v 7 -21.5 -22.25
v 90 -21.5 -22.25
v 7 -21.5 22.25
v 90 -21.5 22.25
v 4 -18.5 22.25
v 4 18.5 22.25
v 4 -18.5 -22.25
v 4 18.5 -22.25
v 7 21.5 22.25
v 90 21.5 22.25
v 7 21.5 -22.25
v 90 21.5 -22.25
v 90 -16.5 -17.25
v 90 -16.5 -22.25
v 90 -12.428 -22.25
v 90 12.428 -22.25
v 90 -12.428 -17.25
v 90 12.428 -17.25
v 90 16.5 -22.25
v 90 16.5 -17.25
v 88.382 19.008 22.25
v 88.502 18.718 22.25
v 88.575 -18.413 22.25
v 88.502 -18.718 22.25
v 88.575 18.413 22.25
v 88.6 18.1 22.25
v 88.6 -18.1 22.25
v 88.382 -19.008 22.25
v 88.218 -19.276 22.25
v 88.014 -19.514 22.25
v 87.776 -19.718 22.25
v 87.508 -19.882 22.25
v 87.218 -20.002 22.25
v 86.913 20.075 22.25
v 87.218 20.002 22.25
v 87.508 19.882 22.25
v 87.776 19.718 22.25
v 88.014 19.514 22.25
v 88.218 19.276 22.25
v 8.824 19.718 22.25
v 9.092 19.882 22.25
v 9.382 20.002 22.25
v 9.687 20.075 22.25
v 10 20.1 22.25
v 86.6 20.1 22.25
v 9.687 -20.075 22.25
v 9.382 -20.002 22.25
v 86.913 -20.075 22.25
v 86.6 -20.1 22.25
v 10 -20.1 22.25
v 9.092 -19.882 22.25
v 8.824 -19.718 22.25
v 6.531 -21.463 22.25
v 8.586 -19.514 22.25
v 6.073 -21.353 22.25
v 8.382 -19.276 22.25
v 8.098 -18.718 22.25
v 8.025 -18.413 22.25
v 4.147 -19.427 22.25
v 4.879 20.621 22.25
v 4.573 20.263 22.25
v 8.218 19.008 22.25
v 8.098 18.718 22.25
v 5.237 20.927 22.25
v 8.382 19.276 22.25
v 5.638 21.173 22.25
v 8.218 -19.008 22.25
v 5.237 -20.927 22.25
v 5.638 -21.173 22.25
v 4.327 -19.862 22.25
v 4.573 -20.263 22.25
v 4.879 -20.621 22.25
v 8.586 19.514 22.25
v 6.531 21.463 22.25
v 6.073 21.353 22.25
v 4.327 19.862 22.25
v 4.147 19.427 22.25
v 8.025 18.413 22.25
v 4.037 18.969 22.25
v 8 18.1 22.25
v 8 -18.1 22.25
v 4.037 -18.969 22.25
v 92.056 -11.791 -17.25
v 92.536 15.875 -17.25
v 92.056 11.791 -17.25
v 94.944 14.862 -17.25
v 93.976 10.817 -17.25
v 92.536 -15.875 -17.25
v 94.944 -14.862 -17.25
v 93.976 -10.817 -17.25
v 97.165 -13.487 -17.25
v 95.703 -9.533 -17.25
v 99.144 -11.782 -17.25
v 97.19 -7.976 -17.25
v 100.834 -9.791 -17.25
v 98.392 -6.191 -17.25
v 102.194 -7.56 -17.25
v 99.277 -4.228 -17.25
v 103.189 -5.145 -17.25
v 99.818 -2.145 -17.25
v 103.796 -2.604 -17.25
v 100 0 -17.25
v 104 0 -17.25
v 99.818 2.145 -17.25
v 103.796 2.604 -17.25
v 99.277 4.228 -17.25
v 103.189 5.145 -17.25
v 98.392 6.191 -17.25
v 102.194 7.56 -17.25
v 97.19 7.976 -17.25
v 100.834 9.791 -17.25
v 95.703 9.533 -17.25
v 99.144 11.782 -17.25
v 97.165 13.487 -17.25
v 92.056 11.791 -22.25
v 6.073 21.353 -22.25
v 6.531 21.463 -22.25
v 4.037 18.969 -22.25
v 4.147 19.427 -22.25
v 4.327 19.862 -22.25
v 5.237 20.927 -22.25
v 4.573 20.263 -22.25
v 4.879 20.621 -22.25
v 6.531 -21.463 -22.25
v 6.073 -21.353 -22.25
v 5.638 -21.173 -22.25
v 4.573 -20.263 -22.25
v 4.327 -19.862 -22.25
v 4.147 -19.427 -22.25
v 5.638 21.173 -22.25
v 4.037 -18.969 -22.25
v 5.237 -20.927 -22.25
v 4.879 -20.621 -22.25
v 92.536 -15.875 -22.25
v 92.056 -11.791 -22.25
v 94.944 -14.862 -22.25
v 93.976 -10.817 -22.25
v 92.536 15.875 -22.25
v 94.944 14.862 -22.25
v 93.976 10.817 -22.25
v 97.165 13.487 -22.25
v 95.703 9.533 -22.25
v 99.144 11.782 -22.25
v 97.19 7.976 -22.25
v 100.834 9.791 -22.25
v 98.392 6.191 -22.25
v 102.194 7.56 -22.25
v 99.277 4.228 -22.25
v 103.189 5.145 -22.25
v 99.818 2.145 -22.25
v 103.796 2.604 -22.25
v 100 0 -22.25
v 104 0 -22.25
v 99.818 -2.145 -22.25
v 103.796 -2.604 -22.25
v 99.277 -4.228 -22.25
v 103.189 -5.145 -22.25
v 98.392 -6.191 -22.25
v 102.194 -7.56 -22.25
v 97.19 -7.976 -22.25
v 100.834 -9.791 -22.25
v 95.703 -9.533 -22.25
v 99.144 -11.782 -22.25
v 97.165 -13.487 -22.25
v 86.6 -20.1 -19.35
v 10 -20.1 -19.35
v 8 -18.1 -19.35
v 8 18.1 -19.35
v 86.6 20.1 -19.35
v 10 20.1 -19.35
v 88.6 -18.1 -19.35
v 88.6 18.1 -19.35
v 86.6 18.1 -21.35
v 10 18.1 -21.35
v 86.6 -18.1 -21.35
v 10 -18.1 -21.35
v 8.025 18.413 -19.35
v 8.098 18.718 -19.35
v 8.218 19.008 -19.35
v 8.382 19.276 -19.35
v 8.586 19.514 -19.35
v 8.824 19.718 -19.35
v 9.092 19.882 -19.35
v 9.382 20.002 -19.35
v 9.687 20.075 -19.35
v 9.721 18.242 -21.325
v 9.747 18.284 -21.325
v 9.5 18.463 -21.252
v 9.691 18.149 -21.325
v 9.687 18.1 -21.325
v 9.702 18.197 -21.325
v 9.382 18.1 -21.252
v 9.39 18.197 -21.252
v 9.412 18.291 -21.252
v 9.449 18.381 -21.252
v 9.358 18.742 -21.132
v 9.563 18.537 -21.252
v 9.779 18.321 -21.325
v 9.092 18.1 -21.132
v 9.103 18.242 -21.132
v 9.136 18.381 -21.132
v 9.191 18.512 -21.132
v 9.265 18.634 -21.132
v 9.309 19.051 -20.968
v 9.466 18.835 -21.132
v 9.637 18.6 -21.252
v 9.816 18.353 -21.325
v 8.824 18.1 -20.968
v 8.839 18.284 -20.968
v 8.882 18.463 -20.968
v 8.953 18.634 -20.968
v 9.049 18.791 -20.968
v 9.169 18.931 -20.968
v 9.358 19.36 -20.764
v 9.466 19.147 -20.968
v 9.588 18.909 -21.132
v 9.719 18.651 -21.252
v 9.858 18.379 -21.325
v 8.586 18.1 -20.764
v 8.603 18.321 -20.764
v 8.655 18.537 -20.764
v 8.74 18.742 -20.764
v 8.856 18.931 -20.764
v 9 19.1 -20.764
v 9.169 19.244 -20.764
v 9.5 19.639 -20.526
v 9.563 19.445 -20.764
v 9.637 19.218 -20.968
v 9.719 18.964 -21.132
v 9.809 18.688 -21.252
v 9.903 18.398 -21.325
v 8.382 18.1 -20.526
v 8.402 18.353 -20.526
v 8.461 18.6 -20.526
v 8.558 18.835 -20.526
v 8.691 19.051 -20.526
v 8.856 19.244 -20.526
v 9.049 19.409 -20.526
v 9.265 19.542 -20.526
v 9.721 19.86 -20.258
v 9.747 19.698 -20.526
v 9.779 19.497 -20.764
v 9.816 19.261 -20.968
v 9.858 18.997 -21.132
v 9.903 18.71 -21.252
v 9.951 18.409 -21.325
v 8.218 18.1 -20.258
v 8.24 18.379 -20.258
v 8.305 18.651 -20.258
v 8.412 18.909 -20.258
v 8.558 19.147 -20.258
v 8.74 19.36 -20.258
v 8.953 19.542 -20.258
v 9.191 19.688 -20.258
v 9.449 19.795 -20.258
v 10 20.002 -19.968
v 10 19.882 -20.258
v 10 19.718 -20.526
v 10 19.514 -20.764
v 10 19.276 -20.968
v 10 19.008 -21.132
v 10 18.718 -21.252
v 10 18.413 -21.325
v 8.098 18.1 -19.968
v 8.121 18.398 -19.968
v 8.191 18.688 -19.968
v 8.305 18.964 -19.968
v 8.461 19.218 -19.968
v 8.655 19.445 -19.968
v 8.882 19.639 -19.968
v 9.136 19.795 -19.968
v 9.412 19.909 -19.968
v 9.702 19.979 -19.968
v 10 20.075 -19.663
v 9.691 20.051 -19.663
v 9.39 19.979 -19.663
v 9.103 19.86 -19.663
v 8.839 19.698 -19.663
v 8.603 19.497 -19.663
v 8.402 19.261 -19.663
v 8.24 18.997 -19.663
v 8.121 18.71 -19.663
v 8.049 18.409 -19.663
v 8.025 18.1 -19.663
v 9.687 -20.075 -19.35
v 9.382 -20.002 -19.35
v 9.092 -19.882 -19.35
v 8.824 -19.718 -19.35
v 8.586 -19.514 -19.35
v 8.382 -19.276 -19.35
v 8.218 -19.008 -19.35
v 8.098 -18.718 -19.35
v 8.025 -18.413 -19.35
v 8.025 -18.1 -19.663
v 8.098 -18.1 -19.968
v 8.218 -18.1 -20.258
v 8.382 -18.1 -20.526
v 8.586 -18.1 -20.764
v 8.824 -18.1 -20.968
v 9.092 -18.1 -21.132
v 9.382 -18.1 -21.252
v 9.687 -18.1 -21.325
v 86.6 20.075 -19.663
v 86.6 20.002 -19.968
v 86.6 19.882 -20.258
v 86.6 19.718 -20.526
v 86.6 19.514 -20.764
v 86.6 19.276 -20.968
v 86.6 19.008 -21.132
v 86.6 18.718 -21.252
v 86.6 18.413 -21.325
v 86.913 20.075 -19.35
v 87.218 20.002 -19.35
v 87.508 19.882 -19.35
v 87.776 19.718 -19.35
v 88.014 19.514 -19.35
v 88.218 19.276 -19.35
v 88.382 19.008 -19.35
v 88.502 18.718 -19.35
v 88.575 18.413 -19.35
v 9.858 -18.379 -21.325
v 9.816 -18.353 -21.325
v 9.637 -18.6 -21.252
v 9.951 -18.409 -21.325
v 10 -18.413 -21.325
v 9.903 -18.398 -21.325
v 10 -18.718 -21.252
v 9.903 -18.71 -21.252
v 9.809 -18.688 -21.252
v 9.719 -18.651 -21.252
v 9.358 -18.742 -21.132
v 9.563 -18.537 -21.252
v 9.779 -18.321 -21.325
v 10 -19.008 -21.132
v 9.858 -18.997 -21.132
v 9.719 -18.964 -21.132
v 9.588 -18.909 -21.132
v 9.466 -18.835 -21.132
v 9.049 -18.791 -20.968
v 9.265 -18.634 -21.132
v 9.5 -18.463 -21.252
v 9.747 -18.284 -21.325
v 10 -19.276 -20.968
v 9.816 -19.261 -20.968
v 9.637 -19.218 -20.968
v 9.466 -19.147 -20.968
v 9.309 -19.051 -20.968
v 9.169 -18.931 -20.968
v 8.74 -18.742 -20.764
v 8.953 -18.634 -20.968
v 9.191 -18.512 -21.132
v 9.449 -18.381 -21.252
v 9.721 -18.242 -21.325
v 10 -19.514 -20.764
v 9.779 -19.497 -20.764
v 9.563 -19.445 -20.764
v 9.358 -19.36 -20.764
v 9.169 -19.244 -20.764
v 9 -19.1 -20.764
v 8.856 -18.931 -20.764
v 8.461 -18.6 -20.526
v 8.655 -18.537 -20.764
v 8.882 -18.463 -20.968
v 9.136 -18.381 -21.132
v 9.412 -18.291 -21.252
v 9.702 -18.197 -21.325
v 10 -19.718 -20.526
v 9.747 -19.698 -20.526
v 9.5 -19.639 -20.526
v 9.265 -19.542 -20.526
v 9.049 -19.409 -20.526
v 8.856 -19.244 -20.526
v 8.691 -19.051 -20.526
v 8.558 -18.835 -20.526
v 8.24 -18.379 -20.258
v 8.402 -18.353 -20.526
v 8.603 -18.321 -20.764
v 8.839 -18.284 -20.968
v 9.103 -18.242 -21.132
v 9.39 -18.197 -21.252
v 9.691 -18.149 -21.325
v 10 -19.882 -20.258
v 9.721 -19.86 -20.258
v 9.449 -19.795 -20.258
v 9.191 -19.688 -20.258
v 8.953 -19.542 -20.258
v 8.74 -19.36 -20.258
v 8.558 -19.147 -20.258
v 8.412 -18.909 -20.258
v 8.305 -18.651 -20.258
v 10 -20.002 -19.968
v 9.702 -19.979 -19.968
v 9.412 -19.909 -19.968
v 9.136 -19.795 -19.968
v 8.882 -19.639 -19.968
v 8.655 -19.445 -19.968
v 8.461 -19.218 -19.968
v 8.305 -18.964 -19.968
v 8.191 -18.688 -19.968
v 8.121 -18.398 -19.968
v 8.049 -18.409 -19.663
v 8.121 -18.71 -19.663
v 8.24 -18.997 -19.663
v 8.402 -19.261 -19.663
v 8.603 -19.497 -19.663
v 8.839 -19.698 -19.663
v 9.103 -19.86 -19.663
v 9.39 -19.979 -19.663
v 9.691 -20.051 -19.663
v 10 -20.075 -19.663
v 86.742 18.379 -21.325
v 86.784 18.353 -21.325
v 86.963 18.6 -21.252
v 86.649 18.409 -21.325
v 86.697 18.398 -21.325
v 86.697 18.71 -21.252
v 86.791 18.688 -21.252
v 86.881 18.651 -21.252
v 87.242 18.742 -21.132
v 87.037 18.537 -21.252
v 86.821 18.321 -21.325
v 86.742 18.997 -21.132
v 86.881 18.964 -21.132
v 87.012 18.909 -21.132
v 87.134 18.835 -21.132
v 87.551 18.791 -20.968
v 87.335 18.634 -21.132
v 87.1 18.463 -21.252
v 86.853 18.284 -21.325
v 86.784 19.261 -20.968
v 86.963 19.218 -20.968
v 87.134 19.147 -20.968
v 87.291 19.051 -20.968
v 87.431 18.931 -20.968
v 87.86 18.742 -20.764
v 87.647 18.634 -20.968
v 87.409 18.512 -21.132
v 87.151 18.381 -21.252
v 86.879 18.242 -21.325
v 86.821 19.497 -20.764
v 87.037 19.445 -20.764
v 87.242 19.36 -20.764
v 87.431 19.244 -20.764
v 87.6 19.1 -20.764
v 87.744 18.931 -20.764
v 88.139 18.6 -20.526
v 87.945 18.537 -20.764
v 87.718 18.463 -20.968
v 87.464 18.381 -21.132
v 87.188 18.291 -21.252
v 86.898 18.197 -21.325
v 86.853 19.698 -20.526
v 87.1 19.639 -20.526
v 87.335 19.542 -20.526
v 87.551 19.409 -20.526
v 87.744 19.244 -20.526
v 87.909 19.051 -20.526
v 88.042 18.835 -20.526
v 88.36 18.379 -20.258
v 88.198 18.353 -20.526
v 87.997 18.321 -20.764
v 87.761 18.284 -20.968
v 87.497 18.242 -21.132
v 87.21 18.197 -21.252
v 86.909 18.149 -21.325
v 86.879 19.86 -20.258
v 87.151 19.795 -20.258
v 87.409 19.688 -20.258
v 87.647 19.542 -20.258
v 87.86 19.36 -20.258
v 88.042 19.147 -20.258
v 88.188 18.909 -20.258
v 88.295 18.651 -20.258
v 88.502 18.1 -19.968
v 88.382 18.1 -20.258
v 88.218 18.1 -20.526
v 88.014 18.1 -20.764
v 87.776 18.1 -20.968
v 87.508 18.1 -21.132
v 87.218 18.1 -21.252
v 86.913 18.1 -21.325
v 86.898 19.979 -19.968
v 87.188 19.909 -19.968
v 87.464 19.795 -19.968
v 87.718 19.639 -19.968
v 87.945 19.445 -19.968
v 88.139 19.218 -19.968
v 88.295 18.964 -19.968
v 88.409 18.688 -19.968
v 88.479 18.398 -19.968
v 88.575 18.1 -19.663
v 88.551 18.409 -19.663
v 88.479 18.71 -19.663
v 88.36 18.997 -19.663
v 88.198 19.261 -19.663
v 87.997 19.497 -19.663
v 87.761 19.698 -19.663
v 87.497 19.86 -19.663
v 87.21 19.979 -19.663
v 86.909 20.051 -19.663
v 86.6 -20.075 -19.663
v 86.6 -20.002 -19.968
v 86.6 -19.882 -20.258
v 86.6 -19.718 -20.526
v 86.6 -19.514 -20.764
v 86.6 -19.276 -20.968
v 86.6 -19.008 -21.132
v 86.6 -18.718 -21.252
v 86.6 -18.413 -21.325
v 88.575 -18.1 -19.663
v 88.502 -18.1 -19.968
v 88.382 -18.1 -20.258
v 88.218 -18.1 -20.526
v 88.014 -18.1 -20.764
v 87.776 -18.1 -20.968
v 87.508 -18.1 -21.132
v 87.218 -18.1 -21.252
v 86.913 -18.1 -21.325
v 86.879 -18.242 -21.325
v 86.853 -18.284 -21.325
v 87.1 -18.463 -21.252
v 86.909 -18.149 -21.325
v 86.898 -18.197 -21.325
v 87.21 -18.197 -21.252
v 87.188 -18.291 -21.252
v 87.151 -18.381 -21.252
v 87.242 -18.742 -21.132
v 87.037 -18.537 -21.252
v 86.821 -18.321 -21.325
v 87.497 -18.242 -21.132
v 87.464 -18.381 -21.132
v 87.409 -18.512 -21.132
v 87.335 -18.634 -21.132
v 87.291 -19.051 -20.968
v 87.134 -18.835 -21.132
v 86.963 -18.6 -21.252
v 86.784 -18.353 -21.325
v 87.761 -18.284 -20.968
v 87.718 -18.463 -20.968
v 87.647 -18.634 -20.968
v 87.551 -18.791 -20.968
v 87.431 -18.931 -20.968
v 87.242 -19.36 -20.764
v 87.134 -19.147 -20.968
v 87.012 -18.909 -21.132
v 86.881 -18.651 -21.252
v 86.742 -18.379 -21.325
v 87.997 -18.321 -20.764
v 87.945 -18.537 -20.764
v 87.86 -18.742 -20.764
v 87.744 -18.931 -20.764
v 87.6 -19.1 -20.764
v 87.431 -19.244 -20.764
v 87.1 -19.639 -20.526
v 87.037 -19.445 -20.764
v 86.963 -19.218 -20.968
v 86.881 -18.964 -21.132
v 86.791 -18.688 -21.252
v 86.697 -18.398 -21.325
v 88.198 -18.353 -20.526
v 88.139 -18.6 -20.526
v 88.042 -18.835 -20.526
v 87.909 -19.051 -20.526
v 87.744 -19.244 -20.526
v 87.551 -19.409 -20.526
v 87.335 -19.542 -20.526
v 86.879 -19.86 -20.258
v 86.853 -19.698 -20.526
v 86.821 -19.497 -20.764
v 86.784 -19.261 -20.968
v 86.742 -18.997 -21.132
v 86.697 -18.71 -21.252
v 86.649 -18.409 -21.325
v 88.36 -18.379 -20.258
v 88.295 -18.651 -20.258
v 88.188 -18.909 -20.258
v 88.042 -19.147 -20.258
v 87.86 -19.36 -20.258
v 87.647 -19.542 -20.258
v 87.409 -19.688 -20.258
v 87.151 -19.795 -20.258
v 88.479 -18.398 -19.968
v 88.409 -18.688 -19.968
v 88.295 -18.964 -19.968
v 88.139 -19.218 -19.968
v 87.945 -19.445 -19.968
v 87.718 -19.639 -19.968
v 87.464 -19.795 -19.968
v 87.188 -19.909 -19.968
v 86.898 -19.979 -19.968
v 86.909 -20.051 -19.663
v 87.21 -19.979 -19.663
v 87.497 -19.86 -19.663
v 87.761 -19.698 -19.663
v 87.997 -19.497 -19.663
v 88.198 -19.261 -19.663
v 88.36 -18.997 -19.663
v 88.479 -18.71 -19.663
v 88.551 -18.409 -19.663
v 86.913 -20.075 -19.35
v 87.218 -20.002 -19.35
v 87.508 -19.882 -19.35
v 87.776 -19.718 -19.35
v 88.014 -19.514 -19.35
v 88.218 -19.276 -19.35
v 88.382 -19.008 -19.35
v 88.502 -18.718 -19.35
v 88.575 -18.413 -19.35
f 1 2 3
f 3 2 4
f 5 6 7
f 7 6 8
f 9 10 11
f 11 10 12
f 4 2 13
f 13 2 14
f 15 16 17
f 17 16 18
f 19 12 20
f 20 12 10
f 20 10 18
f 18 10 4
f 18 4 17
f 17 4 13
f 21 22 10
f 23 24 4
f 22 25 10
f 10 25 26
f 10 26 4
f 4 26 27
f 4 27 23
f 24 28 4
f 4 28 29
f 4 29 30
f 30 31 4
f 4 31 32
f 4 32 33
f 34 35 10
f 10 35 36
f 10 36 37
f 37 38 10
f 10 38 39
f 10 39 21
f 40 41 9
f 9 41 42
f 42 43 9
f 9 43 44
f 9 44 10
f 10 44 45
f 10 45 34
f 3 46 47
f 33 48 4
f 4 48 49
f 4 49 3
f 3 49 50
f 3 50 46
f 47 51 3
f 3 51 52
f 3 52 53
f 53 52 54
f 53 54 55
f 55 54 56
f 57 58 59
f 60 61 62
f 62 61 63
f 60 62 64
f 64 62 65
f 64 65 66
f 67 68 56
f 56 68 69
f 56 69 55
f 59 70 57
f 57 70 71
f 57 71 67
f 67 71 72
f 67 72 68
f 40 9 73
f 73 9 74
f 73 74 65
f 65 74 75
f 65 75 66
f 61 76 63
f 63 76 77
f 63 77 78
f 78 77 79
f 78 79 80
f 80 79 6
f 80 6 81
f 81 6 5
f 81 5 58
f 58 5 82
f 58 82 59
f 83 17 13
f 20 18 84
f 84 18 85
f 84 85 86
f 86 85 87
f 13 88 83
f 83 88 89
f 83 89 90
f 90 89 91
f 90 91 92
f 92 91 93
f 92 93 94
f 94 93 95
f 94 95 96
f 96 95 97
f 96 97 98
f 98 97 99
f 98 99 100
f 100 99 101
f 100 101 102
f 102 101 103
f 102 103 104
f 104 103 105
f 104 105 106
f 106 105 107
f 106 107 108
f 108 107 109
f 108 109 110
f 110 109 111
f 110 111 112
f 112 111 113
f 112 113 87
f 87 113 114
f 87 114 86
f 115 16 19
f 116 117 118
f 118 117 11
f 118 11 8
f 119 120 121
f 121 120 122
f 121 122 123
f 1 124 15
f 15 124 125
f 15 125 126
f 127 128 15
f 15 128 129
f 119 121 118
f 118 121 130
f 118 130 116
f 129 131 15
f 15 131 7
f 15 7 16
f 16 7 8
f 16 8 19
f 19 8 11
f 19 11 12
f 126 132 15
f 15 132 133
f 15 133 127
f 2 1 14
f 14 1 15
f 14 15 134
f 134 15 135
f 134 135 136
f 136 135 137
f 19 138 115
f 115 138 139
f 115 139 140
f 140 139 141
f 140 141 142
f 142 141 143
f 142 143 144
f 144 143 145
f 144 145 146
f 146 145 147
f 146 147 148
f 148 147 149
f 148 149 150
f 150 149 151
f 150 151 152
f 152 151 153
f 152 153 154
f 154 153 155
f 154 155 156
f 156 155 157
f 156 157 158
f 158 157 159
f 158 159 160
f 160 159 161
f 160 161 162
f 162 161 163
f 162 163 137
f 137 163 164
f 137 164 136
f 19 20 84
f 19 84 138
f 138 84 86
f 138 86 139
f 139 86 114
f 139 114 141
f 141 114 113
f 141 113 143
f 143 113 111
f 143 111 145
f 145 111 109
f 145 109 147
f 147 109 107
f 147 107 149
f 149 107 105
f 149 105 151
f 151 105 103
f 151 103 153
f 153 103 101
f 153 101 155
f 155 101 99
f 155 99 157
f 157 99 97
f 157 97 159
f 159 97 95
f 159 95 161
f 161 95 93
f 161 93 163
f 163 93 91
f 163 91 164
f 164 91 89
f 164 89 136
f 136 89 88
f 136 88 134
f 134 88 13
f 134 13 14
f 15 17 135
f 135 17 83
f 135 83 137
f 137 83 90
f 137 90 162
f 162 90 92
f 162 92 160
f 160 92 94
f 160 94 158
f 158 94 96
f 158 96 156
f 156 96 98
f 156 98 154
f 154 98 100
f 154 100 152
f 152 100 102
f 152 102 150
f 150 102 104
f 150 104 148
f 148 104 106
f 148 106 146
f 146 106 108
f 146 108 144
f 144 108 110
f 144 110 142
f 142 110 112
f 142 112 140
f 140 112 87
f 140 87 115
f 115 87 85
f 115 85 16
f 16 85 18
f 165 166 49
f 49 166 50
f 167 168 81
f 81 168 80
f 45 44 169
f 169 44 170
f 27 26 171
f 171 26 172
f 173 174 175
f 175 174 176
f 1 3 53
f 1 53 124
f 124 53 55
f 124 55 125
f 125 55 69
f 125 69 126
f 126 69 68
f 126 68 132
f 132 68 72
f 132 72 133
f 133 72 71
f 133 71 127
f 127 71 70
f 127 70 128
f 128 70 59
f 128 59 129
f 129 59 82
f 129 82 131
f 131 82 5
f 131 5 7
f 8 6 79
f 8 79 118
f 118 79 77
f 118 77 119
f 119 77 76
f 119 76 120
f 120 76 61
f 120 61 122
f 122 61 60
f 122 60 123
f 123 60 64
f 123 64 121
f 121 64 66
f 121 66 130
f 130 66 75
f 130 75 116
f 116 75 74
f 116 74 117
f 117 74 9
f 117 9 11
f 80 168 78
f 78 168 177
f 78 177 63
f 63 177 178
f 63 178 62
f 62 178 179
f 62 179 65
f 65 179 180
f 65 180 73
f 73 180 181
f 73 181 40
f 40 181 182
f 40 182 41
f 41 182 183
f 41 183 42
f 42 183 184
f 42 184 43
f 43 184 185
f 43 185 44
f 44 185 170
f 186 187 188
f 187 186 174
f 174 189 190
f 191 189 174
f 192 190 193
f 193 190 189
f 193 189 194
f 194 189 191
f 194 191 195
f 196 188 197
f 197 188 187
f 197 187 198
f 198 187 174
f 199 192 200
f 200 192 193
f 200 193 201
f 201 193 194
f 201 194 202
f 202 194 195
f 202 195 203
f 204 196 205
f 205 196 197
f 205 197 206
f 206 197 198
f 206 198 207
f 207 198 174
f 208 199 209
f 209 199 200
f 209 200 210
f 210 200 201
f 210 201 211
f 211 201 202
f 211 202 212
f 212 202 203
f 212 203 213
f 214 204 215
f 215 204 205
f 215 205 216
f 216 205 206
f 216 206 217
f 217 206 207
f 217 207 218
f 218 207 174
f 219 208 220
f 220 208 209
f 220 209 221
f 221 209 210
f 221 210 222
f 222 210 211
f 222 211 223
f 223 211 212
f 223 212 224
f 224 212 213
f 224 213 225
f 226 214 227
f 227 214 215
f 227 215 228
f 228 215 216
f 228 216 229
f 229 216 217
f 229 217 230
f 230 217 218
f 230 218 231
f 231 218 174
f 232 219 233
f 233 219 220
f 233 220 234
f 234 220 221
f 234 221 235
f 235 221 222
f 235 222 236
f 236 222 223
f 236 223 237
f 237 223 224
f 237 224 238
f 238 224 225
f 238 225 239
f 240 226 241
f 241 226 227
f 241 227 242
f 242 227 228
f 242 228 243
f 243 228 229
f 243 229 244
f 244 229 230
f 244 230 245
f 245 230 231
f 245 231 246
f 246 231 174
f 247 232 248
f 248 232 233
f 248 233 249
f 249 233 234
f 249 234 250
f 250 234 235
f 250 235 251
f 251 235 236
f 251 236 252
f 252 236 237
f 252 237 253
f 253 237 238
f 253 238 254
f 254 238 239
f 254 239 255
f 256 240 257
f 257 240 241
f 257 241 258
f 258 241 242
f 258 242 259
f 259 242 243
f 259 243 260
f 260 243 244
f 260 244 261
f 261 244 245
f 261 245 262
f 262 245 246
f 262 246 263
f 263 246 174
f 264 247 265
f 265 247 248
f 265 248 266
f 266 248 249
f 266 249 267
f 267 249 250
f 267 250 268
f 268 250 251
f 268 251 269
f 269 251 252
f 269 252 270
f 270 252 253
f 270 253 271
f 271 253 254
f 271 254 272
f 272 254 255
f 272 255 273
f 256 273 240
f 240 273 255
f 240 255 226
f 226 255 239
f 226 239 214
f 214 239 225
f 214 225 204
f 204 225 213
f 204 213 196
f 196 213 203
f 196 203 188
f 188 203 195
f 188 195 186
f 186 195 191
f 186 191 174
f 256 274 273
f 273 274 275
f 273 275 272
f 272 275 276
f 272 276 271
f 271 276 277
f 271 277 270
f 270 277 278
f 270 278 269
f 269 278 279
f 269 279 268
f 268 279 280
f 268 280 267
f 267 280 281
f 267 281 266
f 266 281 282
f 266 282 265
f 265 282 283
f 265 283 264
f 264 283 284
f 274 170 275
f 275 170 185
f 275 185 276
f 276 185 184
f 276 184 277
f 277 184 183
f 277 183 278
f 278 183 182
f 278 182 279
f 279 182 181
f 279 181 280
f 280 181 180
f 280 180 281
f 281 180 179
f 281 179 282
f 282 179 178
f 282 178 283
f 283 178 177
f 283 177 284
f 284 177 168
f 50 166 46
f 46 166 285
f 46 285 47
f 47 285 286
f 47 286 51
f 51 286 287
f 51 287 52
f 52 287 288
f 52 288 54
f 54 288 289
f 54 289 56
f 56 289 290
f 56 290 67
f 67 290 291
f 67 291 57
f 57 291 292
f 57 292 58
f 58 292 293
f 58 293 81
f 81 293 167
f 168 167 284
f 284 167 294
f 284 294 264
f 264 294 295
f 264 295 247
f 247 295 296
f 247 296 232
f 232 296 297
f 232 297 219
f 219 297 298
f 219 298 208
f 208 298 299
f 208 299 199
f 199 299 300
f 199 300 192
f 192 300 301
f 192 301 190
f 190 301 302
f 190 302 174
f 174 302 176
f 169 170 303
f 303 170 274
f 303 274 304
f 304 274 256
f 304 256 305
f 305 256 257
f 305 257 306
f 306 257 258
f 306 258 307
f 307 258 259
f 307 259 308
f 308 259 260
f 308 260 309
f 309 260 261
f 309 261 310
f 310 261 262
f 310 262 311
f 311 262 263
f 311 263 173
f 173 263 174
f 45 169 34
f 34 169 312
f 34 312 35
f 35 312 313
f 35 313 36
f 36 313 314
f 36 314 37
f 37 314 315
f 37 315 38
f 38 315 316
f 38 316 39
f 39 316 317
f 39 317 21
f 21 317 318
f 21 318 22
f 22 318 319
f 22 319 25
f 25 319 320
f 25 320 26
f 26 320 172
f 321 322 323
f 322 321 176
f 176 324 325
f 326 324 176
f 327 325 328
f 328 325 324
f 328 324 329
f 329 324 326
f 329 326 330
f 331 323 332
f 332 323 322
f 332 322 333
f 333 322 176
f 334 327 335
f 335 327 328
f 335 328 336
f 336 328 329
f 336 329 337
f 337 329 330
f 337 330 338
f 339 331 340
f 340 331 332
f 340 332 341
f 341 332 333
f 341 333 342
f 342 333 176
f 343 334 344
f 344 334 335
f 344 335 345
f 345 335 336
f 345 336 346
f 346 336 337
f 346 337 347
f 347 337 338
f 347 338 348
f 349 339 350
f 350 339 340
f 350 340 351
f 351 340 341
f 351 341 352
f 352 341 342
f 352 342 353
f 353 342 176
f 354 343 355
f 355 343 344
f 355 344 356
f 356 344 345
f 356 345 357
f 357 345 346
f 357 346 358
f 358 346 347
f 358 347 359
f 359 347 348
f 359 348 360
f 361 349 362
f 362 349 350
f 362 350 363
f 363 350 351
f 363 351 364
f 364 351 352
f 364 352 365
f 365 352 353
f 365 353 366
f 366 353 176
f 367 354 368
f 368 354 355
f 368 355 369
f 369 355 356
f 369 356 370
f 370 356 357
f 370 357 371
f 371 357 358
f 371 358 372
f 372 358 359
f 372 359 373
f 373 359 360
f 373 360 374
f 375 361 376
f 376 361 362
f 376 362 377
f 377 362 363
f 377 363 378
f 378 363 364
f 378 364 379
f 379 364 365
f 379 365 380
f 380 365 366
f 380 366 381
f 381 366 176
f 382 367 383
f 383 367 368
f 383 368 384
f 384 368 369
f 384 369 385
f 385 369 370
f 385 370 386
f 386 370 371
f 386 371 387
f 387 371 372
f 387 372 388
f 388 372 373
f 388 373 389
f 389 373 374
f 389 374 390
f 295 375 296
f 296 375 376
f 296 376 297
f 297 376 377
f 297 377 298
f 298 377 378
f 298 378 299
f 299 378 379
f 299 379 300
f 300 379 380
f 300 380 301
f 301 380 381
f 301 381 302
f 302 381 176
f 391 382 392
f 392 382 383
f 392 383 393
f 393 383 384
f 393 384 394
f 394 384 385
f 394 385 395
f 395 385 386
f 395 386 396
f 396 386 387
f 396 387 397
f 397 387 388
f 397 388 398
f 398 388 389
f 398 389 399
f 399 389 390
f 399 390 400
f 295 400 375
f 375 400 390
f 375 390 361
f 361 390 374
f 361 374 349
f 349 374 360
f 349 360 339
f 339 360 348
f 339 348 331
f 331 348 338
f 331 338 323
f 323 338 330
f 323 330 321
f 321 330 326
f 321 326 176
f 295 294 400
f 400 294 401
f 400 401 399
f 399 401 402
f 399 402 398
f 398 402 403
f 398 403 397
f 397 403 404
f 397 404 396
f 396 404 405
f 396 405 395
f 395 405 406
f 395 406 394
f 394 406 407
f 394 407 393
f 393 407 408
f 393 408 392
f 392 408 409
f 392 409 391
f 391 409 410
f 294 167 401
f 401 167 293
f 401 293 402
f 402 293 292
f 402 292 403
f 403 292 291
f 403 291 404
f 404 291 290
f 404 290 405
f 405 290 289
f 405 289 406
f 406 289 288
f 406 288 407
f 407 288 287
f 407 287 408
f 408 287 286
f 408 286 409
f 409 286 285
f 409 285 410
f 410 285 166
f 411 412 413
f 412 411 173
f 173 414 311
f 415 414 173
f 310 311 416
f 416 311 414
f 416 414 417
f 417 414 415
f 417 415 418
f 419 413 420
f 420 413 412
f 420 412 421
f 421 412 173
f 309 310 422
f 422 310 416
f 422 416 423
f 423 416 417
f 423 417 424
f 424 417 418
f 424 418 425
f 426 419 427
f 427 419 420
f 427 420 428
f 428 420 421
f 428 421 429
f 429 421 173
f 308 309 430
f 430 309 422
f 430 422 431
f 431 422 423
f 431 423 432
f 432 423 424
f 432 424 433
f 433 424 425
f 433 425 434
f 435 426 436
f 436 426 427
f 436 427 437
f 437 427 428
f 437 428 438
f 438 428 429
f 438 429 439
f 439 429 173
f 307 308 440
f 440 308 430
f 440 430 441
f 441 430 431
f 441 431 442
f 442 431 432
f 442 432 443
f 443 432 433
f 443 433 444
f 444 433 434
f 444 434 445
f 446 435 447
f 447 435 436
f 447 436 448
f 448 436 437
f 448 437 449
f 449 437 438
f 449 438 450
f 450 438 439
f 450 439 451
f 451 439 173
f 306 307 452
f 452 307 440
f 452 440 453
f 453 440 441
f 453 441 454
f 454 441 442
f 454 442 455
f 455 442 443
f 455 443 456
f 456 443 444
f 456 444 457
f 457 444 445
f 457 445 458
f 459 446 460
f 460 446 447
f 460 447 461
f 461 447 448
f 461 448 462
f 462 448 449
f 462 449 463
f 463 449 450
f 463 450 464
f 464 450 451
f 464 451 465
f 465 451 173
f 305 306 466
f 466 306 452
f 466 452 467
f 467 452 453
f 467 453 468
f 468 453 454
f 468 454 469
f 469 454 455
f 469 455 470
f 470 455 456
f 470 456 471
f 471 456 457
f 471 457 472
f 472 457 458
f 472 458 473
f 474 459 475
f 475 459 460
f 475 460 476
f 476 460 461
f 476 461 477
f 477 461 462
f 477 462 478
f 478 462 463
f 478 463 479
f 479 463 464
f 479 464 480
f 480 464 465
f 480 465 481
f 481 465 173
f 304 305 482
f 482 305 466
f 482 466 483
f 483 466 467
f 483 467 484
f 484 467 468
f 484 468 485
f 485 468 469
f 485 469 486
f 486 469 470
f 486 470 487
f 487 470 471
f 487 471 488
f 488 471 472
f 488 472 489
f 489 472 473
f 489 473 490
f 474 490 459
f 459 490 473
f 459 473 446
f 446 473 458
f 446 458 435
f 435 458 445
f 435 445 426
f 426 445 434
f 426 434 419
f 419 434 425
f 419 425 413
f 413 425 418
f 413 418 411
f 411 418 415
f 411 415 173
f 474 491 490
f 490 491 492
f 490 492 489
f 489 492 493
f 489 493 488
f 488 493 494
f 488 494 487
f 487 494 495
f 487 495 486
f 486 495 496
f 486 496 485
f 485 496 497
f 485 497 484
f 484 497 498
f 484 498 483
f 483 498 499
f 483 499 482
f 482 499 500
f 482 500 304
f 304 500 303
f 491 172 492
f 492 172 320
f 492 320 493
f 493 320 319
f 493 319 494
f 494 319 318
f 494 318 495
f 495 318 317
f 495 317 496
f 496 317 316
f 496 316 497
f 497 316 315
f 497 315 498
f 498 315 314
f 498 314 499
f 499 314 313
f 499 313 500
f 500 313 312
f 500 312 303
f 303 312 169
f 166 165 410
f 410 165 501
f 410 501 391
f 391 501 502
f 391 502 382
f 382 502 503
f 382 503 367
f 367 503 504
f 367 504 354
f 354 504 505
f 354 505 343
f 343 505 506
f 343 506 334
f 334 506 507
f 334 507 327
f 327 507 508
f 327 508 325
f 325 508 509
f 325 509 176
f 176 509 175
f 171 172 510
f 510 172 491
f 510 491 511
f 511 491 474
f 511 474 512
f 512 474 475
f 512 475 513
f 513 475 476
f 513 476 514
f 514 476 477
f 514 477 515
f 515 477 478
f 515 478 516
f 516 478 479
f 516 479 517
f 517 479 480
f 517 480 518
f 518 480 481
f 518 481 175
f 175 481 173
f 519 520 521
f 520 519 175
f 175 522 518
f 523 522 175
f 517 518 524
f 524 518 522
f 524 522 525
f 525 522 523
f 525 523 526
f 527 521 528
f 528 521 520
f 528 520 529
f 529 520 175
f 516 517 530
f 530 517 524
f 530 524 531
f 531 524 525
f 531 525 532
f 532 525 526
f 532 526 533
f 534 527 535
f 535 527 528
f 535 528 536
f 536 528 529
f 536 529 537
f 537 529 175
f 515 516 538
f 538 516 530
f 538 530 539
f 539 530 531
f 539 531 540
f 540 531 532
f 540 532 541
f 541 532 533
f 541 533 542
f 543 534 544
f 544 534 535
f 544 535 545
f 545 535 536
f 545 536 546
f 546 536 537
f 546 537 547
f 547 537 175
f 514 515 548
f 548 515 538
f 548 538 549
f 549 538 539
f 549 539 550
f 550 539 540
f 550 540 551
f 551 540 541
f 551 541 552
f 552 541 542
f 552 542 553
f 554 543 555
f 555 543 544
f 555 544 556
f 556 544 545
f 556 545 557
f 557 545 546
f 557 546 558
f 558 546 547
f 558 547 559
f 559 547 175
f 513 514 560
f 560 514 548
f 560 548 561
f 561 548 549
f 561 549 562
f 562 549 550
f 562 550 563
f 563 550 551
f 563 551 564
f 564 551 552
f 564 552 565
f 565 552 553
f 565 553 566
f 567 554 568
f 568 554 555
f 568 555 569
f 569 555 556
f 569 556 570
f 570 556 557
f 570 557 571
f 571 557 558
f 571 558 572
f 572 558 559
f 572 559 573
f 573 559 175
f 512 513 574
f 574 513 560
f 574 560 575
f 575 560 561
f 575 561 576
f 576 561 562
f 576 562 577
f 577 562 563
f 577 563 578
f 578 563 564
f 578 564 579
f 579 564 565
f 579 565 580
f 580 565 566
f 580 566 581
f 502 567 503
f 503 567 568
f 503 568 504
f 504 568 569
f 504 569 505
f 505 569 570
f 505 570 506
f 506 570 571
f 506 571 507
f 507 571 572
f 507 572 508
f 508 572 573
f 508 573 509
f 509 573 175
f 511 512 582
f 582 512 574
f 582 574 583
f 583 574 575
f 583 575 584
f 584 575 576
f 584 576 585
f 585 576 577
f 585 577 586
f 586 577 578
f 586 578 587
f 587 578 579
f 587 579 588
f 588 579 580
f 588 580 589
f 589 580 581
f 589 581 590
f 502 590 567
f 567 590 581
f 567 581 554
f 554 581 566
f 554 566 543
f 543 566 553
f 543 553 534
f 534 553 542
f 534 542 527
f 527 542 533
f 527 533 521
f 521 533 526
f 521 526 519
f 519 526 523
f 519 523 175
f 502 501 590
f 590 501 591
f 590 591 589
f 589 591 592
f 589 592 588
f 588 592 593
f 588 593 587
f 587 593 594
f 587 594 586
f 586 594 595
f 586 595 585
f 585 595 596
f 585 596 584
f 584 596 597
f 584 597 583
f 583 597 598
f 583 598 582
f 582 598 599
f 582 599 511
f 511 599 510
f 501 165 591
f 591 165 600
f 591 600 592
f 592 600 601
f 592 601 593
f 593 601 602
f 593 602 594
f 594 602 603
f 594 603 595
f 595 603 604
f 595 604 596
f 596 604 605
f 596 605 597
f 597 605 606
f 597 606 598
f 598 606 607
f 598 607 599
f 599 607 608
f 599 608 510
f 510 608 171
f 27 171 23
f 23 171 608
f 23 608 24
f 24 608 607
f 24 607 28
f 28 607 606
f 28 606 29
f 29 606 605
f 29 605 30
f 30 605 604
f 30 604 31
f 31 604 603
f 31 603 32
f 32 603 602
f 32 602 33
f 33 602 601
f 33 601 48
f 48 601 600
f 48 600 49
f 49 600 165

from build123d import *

# Parameters (mm, degrees)
SKETCH_1_W                  = 86
SKETCH_1_H                  = 43
EXTRUDE_1_DEPTH             = 39.5
EXTRUDE_2_DEPTH             = 5
SKETCH_3_W                  = 80.6
SKETCH_3_H                  = 40.2
CUT_EXTRUDE_1_DEPTH         = 43.6
HOLE_WIZARD_8_3_8_3_1_D     = 8.3
HOLE_WIZARD_8_3_8_3_1_DEPTH = 3.2
FILLET_1_R                  = 3
EXTRUDE_START               = -4
SKETCH_6_R                  = 4.15
EXTRUDE_3_DEPTH             = 4
FILLET_2_R                  = 2


with BuildPart() as part:
    # Эскиз1 → Бобышка-Вытянуть1 (new body)
    with BuildSketch(Plane.XY.offset(22.25)):
        with Locations((47, 0)):
            Rectangle(SKETCH_1_W, SKETCH_1_H)
    extrude(amount=-EXTRUDE_1_DEPTH)

    # Эскиз2 → Бобышка-Вытянуть2 (add)
    with BuildSketch(Plane(origin=(0, 0, -17.25), x_dir=(-1, 0, 0), z_dir=(0, 0, -1))):
        with BuildLine():
            Line((-90, -21.5), (-90, -16.5))
            ThreePointArc((-90, -16.5), (-104, 0), (-90, 16.5))
            Line((-90, 16.5), (-90, 21.5))
            Line((-90, 21.5), (-4, 21.5))
            Line((-4, 21.5), (-4, -21.5))
            Line((-4, -21.5), (-90, -21.5))
        make_face()
        with BuildLine():
            Line((-90, -12.428366172), (-90, 12.428366172))
            ThreePointArc((-90, 12.428366172), (-100, 0), (-90, -12.428366172))
        make_face(mode=Mode.SUBTRACT)
    extrude(amount=EXTRUDE_2_DEPTH)

    # Эскиз3 → Вырез-Вытянуть1 (cut)
    with BuildSketch(Plane.XY.offset(22.25)):
        with Locations((48.3, 0)):
            Rectangle(SKETCH_3_W, SKETCH_3_H)
    extrude(amount=-CUT_EXTRUDE_1_DEPTH, mode=Mode.SUBTRACT)

    # Диаметр отверстия Ø8.3 (8.3)1
    with Locations(Plane.ZY.offset(-4)):
        with Locations((0, 0)):
            Hole(HOLE_WIZARD_8_3_8_3_1_D / 2, depth=HOLE_WIZARD_8_3_8_3_1_DEPTH)

    # Скругление1
    fillet_1_edges = [part.edges().sort_by_distance(p)[0] for p in [
        (4, -21.5, 0),
        (4, 21.5, 0),
    ]]
    fillet(fillet_1_edges, radius=FILLET_1_R)

    # Эскиз6 → Бобышка-Вытянуть3 (add)
    with BuildSketch(Plane.ZY.offset(-4).offset(EXTRUDE_START)):
        Circle(SKETCH_6_R)
    extrude(amount=EXTRUDE_3_DEPTH)

    # Скругление2
    fillet_2_edges = [part.edges().sort_by_distance(p)[0] for p in [
        (48.3, -20.1, -21.35),
        (88.6, -20.1, 0.45),
        (8, 0, -21.35),
        (8, -20.1, 0.45),
        (48.3, 20.1, -21.35),
        (8, 20.1, 0.45),
        (88.6, 0, -21.35),
        (88.6, 20.1, 0.45),
    ]]
    fillet(fillet_2_edges, radius=FILLET_2_R)


solid = part.part
